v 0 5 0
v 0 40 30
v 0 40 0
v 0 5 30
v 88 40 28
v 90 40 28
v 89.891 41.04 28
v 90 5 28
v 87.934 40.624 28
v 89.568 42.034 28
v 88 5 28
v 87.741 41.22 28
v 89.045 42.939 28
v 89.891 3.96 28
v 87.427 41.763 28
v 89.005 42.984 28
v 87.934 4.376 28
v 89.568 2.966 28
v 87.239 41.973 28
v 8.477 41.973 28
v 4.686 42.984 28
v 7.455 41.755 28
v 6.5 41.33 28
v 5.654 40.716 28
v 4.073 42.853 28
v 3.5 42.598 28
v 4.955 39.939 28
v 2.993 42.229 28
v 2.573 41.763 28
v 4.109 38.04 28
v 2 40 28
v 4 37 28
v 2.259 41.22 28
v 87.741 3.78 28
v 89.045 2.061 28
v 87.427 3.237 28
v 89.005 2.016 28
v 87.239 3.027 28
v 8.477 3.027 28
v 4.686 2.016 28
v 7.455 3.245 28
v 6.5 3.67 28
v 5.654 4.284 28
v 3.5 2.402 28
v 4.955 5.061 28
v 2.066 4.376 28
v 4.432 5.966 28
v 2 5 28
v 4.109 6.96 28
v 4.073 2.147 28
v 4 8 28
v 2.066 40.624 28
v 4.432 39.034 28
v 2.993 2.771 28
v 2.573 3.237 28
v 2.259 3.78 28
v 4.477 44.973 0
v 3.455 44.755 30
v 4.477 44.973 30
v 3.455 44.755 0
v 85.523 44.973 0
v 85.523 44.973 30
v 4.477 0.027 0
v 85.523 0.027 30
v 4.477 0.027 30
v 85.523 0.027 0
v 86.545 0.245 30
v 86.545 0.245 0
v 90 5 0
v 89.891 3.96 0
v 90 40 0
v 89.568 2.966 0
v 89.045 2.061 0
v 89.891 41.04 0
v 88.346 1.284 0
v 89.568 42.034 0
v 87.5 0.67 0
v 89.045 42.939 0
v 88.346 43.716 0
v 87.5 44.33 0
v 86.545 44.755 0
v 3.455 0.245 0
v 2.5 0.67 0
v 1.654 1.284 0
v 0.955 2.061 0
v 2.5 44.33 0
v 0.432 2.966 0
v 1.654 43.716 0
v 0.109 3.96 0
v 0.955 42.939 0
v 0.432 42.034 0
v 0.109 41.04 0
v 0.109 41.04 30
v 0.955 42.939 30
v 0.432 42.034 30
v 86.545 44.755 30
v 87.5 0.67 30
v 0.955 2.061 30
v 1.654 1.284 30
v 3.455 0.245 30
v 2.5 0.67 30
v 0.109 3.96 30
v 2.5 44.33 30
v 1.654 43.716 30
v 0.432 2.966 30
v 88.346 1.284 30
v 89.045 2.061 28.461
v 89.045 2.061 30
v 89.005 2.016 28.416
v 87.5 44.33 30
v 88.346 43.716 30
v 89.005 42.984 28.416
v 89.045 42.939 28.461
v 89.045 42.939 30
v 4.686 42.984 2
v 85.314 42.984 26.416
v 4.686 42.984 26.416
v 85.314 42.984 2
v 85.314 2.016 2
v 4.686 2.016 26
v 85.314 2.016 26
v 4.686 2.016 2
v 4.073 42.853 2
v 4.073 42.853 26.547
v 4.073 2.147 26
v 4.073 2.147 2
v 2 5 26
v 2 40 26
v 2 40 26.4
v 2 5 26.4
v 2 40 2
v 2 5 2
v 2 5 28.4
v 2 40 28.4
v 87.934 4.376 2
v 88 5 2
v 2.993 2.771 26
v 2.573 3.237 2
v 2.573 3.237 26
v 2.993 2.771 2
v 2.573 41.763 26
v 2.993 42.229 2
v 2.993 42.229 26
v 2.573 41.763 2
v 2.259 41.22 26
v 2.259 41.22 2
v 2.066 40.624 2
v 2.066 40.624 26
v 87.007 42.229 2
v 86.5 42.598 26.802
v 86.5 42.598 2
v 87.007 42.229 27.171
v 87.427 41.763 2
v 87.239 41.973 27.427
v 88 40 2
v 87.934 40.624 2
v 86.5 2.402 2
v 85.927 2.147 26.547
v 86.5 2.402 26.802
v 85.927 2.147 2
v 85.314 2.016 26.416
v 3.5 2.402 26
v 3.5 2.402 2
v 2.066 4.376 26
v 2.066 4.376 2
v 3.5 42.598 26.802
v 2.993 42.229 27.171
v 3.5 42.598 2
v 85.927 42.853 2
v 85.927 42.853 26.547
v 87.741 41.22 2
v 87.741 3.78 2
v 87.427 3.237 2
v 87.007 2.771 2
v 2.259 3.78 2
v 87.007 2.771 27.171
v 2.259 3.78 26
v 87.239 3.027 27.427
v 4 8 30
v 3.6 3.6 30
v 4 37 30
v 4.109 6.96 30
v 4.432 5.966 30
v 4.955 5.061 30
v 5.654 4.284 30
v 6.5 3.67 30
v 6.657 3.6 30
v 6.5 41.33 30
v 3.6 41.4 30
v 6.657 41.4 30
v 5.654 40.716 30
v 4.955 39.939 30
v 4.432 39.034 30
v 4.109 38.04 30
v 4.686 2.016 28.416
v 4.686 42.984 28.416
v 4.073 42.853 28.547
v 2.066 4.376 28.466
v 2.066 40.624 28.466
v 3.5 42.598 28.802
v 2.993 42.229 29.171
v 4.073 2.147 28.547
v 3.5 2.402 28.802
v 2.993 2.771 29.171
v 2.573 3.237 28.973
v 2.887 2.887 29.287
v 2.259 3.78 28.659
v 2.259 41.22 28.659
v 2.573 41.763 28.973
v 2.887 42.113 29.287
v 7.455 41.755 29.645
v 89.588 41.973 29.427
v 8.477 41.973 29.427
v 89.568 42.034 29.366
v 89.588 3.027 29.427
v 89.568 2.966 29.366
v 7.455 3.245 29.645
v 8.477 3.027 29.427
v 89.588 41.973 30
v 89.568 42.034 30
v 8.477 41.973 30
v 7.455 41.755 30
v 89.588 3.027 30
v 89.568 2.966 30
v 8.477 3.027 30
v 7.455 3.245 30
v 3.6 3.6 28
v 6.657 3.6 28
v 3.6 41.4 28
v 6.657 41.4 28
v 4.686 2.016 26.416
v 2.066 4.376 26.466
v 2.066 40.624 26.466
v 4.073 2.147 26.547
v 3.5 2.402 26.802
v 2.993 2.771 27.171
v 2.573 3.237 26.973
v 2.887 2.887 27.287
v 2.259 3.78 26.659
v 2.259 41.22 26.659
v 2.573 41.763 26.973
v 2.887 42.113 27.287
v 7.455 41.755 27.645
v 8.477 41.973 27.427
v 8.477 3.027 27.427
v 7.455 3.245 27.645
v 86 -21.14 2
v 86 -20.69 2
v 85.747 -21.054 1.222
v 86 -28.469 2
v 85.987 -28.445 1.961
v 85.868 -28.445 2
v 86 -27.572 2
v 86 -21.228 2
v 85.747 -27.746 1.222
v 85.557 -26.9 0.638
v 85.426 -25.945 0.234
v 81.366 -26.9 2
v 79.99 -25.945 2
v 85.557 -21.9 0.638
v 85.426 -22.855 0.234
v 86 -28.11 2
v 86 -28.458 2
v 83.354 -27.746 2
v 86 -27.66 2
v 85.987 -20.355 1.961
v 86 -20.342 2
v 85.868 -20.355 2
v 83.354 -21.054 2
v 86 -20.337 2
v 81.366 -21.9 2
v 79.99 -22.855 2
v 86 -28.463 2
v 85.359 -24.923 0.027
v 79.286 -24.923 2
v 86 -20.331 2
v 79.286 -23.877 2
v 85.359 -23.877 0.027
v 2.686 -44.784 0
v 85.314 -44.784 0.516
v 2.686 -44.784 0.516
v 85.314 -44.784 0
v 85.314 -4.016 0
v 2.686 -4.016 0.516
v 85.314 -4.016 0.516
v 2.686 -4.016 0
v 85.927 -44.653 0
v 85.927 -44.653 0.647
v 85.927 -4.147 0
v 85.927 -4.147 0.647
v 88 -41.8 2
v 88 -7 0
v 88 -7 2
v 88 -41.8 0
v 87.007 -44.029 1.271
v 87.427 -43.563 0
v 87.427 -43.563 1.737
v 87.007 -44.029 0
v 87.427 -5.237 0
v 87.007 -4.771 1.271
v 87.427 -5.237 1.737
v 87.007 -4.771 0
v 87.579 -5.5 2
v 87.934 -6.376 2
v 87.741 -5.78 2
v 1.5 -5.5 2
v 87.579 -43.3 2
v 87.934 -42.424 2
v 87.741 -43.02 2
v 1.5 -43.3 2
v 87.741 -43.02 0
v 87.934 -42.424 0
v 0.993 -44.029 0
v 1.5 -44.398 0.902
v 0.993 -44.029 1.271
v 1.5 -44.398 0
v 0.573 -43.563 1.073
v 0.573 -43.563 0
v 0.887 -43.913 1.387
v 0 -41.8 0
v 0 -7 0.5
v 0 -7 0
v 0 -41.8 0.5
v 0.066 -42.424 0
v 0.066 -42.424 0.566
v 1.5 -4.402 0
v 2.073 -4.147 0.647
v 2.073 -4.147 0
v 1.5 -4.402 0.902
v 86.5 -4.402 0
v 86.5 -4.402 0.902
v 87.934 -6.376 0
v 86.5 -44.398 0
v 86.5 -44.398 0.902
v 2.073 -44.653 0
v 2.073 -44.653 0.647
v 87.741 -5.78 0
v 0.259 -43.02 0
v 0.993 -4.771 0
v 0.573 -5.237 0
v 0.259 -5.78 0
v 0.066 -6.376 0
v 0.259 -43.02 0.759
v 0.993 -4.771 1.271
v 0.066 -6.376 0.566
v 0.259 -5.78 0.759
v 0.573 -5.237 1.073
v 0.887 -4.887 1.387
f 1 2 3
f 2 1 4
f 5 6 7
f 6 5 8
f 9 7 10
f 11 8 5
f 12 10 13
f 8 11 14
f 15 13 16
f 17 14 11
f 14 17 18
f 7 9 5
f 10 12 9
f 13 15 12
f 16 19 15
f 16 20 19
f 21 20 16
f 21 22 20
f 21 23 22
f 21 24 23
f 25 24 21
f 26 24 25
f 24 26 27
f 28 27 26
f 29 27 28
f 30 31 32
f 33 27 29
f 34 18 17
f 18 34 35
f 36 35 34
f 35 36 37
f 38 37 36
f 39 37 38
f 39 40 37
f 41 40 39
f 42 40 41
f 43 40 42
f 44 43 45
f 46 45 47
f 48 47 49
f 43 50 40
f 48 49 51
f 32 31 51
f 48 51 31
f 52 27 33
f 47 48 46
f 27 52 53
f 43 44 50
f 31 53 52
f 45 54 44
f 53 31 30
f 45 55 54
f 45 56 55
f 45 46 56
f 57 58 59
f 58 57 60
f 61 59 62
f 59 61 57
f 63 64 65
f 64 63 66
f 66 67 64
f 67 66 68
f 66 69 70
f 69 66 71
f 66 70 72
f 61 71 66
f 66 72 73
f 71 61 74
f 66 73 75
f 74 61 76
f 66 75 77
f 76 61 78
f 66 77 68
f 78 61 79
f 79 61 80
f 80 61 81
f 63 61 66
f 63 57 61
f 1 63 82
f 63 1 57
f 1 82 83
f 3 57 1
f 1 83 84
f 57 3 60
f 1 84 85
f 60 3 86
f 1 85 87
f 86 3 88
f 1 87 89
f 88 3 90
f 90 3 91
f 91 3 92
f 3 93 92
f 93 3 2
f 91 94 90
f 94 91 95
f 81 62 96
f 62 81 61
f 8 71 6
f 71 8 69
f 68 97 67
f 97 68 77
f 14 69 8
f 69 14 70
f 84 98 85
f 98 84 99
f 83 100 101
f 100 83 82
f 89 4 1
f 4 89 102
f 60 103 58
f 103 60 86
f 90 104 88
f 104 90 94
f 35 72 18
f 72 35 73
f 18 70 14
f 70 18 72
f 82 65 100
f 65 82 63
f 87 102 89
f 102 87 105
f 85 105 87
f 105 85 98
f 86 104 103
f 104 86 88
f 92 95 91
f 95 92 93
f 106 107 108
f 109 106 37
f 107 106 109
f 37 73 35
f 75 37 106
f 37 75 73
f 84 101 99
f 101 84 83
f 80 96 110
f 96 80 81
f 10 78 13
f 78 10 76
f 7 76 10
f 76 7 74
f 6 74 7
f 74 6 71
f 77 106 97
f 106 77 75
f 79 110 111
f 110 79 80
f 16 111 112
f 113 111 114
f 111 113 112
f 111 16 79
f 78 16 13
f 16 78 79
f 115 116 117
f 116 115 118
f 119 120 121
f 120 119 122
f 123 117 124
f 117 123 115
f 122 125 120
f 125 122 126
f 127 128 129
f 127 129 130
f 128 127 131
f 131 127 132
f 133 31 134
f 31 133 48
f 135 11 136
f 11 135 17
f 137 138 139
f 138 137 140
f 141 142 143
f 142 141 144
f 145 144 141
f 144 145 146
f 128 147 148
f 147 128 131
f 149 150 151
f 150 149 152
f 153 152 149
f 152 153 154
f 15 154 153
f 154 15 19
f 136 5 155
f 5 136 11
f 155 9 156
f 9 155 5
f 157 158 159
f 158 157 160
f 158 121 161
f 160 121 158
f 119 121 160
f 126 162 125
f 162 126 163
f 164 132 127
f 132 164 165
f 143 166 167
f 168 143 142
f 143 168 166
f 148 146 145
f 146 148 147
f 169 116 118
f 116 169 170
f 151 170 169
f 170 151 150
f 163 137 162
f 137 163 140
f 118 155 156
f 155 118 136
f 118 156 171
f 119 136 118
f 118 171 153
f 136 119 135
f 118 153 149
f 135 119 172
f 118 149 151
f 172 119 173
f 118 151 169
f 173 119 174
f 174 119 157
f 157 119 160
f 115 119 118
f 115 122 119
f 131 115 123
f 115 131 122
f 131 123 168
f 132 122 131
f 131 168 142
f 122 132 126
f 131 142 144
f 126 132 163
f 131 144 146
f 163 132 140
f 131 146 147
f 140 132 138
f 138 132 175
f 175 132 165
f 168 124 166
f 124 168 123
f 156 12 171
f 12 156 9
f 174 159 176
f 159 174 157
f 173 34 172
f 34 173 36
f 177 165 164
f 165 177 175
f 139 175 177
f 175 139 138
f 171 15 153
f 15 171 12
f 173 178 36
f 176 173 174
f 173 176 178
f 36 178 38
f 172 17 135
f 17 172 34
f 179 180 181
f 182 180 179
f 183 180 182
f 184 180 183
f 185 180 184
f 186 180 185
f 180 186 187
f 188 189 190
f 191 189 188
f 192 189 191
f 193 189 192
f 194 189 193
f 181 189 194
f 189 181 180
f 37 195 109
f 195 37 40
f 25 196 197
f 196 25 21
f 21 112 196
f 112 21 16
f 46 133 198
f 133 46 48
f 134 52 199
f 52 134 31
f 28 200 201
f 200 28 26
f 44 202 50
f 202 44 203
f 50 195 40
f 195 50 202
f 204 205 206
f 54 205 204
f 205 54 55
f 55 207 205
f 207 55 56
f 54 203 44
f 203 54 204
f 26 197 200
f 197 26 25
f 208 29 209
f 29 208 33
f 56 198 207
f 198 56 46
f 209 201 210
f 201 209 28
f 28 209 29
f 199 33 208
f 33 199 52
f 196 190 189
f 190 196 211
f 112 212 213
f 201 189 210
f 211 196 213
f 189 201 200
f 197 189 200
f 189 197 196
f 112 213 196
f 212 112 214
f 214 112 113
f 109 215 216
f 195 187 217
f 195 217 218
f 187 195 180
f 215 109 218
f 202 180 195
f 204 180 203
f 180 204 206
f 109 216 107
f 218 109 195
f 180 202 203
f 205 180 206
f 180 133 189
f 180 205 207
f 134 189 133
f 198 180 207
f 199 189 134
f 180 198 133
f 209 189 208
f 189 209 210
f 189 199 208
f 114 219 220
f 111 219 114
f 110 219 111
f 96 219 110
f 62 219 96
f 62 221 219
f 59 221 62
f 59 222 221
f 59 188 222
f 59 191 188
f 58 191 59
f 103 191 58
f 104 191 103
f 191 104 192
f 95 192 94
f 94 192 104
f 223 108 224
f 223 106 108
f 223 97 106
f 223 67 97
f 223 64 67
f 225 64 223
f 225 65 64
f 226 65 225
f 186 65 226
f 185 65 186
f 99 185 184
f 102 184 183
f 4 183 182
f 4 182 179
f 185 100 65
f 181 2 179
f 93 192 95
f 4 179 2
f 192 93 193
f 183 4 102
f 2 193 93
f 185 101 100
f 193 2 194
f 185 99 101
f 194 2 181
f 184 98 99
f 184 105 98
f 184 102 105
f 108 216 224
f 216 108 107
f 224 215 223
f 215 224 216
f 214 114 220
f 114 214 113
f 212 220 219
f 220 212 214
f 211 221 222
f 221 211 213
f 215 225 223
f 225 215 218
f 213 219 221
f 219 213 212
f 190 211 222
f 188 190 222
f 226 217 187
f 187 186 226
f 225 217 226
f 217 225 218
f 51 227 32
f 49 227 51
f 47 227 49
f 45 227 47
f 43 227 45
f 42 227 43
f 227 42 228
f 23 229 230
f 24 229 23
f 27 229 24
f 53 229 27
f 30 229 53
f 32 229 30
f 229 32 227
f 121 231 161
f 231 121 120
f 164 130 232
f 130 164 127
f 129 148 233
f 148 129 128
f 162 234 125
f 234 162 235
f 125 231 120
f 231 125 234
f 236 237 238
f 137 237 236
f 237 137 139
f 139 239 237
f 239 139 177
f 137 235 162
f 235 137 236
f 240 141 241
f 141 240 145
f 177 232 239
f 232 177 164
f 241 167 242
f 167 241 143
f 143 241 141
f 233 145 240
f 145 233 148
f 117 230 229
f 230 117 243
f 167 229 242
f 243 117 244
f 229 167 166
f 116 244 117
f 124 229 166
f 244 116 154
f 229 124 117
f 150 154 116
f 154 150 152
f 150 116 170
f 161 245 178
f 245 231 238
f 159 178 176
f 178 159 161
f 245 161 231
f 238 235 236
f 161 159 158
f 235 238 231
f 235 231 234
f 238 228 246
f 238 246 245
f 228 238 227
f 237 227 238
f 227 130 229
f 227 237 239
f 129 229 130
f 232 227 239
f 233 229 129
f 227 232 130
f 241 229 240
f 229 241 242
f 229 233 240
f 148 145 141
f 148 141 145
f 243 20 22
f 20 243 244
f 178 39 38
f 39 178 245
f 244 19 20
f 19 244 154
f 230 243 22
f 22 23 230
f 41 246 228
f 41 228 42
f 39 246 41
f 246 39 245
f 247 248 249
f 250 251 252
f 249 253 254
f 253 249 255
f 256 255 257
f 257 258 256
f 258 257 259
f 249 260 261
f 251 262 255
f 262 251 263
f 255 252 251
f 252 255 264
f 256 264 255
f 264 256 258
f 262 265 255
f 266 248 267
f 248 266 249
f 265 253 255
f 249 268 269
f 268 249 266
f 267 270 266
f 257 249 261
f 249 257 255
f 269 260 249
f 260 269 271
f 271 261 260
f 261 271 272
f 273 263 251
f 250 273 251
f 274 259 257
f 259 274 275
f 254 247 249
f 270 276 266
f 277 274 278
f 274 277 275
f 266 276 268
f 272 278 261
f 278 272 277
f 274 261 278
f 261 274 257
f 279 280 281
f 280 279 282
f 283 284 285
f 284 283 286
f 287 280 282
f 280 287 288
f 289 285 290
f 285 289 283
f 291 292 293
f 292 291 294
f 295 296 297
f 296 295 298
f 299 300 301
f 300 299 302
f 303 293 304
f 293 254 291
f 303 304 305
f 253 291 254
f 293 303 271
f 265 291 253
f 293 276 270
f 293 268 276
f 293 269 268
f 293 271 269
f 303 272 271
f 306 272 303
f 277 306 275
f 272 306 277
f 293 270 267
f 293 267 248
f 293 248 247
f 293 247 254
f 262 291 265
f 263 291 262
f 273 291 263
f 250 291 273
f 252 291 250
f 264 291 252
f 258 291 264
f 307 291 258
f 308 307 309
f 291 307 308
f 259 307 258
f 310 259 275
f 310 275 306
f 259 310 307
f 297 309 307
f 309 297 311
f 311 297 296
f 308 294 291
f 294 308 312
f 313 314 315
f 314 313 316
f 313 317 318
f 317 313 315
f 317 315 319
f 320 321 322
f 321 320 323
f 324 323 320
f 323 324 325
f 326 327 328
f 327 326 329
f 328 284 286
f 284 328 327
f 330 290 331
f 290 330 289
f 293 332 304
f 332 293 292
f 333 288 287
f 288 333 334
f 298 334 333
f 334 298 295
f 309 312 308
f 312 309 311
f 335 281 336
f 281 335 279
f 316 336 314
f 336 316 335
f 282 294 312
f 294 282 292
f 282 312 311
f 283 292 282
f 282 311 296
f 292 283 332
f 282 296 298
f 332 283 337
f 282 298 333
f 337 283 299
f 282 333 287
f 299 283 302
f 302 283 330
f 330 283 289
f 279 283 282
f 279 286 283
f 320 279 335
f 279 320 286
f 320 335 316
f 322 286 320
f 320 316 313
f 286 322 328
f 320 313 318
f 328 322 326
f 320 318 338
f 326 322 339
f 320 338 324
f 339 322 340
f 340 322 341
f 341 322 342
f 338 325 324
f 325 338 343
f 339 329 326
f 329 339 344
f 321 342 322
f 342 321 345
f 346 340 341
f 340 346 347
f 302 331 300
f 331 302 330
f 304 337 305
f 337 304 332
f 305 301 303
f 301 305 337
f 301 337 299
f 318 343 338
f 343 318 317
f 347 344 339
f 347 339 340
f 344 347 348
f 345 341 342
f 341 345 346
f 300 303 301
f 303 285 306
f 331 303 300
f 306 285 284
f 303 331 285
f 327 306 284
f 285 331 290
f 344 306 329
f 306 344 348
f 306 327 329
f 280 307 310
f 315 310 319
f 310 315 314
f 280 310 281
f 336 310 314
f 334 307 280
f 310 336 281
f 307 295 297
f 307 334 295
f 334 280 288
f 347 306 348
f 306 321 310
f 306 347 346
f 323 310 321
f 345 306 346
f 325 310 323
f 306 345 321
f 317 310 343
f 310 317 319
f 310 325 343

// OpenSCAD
itemsShown="both"; // [both,box,lid]
boxLength=90;
boxWidth=45;
boxHeight=30;
cornerRadius=5;
wallThickness=2;
bottomThickness=2;
lidThickness=2;
lidClearance=0.2;
lidEdgeThickness=0.5;
// Notch in the lid
withNotch=true;

showBox();
showLid();

module showLid(){
	translate ([0, -2*wallThickness, 0]) 
	roundBoxLid(l=boxLength-wallThickness,
				w=boxWidth-2*wallThickness-lidClearance,
				h=lidThickness,
				et=lidEdgeThickness,
				r=cornerRadius-wallThickness,
				notch=withNotch);
}

module showBox(){
	round_box(l=boxLength,
			  w=boxWidth,
			  h=boxHeight,
			  bt=bottomThickness,
			  wt=wallThickness,
			  lt=lidThickness,
			  r=cornerRadius);
}

module round_box(l=40,w=30,h=30,bt=2,wt=2,lt=2,r=5,){
	difference() { 
		round_cube(l=l,w=w,h=h-lt,r=r);
		translate ([wt, wt, bt]) 
		round_cube(l=l-wt*2,w=w-wt*2,h=h,r=r-wt);
	}
	roundBoxRim();
	translate ([0, 0, -wt]) roundBoxRim();
}

module roundBoxRim(l=boxLength,
				   w=boxWidth,
				   h=boxHeight,
				   et=lidEdgeThickness,
				   r=cornerRadius,
				   wt=wallThickness,
				   lt=lidThickness){
	difference() { 
		translate ([0, 0, h-lt]) 
		round_cube(l=l,w=w,h=lt,r=r);
		translate ([wt+lt,wt+lt-et*2,h-lt-0.1]) 
		round_cube(l=l*2,w=w-2*(wt+lt)+4*et,h=lt+0.2,r=r-wt+lt);

		//subtract out a lid to make the ledge
		translate ([wt, w-wt, h-lt-0.1])
		roundBoxLid(l=l*2,w=w-2*wt,h=lt+0.1,wt=wt,t=lt,et=0.5,r=r-wt,notch=false);
	}
}

module roundBoxLid(l=40,w=30,h=3,wt=2,t=2,et=0.5,r=5,notch=true){
	translate ([l, 0, 0]) 
	rotate (a = [0, 0, 180]) 
	difference(){
		round_cube(l=l,w=w,h=h,t=t,r=r);

		translate ([-1, 0, et]) rotate (a = [45, 0, 0])  cube (size = [l+2, h*2, h*2]); 
		translate ([-1, w, et]) rotate (a = [45, 0, 0])  cube (size = [l+2, h*2, h*2]); 
		translate ([l, -1, et]) rotate (a = [45, 0, 90]) cube (size = [w+2, h*2, h*2]); 
		if (notch==true){
			translate([2,w/2,h+0.001]) thumbNotch(10/2,72,t);
		}
	}
}

module thumbNotch(
	thumbR=12/2,
	angle=72,
	notchHeight=2){

	size=10*thumbR;

	rotate([0,0,90])
	difference(){
		translate([0,
					(thumbR*sin(angle)-notchHeight)/tan(angle),
					 thumbR*sin(angle)-notchHeight])
		rotate([angle,0,0])
		cylinder(r=thumbR,h=size,$fn=30);

		translate([-size,-size,0])
		cube(size*2);
	}
}

module round_cube(l=40,w=30,h=20,r=5,$fn=30){
	hull(){ 
		translate ([r, r, 0]) cylinder (h = h, r=r);
		translate ([r, w-r, 0]) cylinder (h = h, r=r);
		translate ([l-r,w-r, 0]) cylinder (h = h, r=r);
		translate ([l-r, r, 0]) cylinder (h = h, r=r);
	}
}
